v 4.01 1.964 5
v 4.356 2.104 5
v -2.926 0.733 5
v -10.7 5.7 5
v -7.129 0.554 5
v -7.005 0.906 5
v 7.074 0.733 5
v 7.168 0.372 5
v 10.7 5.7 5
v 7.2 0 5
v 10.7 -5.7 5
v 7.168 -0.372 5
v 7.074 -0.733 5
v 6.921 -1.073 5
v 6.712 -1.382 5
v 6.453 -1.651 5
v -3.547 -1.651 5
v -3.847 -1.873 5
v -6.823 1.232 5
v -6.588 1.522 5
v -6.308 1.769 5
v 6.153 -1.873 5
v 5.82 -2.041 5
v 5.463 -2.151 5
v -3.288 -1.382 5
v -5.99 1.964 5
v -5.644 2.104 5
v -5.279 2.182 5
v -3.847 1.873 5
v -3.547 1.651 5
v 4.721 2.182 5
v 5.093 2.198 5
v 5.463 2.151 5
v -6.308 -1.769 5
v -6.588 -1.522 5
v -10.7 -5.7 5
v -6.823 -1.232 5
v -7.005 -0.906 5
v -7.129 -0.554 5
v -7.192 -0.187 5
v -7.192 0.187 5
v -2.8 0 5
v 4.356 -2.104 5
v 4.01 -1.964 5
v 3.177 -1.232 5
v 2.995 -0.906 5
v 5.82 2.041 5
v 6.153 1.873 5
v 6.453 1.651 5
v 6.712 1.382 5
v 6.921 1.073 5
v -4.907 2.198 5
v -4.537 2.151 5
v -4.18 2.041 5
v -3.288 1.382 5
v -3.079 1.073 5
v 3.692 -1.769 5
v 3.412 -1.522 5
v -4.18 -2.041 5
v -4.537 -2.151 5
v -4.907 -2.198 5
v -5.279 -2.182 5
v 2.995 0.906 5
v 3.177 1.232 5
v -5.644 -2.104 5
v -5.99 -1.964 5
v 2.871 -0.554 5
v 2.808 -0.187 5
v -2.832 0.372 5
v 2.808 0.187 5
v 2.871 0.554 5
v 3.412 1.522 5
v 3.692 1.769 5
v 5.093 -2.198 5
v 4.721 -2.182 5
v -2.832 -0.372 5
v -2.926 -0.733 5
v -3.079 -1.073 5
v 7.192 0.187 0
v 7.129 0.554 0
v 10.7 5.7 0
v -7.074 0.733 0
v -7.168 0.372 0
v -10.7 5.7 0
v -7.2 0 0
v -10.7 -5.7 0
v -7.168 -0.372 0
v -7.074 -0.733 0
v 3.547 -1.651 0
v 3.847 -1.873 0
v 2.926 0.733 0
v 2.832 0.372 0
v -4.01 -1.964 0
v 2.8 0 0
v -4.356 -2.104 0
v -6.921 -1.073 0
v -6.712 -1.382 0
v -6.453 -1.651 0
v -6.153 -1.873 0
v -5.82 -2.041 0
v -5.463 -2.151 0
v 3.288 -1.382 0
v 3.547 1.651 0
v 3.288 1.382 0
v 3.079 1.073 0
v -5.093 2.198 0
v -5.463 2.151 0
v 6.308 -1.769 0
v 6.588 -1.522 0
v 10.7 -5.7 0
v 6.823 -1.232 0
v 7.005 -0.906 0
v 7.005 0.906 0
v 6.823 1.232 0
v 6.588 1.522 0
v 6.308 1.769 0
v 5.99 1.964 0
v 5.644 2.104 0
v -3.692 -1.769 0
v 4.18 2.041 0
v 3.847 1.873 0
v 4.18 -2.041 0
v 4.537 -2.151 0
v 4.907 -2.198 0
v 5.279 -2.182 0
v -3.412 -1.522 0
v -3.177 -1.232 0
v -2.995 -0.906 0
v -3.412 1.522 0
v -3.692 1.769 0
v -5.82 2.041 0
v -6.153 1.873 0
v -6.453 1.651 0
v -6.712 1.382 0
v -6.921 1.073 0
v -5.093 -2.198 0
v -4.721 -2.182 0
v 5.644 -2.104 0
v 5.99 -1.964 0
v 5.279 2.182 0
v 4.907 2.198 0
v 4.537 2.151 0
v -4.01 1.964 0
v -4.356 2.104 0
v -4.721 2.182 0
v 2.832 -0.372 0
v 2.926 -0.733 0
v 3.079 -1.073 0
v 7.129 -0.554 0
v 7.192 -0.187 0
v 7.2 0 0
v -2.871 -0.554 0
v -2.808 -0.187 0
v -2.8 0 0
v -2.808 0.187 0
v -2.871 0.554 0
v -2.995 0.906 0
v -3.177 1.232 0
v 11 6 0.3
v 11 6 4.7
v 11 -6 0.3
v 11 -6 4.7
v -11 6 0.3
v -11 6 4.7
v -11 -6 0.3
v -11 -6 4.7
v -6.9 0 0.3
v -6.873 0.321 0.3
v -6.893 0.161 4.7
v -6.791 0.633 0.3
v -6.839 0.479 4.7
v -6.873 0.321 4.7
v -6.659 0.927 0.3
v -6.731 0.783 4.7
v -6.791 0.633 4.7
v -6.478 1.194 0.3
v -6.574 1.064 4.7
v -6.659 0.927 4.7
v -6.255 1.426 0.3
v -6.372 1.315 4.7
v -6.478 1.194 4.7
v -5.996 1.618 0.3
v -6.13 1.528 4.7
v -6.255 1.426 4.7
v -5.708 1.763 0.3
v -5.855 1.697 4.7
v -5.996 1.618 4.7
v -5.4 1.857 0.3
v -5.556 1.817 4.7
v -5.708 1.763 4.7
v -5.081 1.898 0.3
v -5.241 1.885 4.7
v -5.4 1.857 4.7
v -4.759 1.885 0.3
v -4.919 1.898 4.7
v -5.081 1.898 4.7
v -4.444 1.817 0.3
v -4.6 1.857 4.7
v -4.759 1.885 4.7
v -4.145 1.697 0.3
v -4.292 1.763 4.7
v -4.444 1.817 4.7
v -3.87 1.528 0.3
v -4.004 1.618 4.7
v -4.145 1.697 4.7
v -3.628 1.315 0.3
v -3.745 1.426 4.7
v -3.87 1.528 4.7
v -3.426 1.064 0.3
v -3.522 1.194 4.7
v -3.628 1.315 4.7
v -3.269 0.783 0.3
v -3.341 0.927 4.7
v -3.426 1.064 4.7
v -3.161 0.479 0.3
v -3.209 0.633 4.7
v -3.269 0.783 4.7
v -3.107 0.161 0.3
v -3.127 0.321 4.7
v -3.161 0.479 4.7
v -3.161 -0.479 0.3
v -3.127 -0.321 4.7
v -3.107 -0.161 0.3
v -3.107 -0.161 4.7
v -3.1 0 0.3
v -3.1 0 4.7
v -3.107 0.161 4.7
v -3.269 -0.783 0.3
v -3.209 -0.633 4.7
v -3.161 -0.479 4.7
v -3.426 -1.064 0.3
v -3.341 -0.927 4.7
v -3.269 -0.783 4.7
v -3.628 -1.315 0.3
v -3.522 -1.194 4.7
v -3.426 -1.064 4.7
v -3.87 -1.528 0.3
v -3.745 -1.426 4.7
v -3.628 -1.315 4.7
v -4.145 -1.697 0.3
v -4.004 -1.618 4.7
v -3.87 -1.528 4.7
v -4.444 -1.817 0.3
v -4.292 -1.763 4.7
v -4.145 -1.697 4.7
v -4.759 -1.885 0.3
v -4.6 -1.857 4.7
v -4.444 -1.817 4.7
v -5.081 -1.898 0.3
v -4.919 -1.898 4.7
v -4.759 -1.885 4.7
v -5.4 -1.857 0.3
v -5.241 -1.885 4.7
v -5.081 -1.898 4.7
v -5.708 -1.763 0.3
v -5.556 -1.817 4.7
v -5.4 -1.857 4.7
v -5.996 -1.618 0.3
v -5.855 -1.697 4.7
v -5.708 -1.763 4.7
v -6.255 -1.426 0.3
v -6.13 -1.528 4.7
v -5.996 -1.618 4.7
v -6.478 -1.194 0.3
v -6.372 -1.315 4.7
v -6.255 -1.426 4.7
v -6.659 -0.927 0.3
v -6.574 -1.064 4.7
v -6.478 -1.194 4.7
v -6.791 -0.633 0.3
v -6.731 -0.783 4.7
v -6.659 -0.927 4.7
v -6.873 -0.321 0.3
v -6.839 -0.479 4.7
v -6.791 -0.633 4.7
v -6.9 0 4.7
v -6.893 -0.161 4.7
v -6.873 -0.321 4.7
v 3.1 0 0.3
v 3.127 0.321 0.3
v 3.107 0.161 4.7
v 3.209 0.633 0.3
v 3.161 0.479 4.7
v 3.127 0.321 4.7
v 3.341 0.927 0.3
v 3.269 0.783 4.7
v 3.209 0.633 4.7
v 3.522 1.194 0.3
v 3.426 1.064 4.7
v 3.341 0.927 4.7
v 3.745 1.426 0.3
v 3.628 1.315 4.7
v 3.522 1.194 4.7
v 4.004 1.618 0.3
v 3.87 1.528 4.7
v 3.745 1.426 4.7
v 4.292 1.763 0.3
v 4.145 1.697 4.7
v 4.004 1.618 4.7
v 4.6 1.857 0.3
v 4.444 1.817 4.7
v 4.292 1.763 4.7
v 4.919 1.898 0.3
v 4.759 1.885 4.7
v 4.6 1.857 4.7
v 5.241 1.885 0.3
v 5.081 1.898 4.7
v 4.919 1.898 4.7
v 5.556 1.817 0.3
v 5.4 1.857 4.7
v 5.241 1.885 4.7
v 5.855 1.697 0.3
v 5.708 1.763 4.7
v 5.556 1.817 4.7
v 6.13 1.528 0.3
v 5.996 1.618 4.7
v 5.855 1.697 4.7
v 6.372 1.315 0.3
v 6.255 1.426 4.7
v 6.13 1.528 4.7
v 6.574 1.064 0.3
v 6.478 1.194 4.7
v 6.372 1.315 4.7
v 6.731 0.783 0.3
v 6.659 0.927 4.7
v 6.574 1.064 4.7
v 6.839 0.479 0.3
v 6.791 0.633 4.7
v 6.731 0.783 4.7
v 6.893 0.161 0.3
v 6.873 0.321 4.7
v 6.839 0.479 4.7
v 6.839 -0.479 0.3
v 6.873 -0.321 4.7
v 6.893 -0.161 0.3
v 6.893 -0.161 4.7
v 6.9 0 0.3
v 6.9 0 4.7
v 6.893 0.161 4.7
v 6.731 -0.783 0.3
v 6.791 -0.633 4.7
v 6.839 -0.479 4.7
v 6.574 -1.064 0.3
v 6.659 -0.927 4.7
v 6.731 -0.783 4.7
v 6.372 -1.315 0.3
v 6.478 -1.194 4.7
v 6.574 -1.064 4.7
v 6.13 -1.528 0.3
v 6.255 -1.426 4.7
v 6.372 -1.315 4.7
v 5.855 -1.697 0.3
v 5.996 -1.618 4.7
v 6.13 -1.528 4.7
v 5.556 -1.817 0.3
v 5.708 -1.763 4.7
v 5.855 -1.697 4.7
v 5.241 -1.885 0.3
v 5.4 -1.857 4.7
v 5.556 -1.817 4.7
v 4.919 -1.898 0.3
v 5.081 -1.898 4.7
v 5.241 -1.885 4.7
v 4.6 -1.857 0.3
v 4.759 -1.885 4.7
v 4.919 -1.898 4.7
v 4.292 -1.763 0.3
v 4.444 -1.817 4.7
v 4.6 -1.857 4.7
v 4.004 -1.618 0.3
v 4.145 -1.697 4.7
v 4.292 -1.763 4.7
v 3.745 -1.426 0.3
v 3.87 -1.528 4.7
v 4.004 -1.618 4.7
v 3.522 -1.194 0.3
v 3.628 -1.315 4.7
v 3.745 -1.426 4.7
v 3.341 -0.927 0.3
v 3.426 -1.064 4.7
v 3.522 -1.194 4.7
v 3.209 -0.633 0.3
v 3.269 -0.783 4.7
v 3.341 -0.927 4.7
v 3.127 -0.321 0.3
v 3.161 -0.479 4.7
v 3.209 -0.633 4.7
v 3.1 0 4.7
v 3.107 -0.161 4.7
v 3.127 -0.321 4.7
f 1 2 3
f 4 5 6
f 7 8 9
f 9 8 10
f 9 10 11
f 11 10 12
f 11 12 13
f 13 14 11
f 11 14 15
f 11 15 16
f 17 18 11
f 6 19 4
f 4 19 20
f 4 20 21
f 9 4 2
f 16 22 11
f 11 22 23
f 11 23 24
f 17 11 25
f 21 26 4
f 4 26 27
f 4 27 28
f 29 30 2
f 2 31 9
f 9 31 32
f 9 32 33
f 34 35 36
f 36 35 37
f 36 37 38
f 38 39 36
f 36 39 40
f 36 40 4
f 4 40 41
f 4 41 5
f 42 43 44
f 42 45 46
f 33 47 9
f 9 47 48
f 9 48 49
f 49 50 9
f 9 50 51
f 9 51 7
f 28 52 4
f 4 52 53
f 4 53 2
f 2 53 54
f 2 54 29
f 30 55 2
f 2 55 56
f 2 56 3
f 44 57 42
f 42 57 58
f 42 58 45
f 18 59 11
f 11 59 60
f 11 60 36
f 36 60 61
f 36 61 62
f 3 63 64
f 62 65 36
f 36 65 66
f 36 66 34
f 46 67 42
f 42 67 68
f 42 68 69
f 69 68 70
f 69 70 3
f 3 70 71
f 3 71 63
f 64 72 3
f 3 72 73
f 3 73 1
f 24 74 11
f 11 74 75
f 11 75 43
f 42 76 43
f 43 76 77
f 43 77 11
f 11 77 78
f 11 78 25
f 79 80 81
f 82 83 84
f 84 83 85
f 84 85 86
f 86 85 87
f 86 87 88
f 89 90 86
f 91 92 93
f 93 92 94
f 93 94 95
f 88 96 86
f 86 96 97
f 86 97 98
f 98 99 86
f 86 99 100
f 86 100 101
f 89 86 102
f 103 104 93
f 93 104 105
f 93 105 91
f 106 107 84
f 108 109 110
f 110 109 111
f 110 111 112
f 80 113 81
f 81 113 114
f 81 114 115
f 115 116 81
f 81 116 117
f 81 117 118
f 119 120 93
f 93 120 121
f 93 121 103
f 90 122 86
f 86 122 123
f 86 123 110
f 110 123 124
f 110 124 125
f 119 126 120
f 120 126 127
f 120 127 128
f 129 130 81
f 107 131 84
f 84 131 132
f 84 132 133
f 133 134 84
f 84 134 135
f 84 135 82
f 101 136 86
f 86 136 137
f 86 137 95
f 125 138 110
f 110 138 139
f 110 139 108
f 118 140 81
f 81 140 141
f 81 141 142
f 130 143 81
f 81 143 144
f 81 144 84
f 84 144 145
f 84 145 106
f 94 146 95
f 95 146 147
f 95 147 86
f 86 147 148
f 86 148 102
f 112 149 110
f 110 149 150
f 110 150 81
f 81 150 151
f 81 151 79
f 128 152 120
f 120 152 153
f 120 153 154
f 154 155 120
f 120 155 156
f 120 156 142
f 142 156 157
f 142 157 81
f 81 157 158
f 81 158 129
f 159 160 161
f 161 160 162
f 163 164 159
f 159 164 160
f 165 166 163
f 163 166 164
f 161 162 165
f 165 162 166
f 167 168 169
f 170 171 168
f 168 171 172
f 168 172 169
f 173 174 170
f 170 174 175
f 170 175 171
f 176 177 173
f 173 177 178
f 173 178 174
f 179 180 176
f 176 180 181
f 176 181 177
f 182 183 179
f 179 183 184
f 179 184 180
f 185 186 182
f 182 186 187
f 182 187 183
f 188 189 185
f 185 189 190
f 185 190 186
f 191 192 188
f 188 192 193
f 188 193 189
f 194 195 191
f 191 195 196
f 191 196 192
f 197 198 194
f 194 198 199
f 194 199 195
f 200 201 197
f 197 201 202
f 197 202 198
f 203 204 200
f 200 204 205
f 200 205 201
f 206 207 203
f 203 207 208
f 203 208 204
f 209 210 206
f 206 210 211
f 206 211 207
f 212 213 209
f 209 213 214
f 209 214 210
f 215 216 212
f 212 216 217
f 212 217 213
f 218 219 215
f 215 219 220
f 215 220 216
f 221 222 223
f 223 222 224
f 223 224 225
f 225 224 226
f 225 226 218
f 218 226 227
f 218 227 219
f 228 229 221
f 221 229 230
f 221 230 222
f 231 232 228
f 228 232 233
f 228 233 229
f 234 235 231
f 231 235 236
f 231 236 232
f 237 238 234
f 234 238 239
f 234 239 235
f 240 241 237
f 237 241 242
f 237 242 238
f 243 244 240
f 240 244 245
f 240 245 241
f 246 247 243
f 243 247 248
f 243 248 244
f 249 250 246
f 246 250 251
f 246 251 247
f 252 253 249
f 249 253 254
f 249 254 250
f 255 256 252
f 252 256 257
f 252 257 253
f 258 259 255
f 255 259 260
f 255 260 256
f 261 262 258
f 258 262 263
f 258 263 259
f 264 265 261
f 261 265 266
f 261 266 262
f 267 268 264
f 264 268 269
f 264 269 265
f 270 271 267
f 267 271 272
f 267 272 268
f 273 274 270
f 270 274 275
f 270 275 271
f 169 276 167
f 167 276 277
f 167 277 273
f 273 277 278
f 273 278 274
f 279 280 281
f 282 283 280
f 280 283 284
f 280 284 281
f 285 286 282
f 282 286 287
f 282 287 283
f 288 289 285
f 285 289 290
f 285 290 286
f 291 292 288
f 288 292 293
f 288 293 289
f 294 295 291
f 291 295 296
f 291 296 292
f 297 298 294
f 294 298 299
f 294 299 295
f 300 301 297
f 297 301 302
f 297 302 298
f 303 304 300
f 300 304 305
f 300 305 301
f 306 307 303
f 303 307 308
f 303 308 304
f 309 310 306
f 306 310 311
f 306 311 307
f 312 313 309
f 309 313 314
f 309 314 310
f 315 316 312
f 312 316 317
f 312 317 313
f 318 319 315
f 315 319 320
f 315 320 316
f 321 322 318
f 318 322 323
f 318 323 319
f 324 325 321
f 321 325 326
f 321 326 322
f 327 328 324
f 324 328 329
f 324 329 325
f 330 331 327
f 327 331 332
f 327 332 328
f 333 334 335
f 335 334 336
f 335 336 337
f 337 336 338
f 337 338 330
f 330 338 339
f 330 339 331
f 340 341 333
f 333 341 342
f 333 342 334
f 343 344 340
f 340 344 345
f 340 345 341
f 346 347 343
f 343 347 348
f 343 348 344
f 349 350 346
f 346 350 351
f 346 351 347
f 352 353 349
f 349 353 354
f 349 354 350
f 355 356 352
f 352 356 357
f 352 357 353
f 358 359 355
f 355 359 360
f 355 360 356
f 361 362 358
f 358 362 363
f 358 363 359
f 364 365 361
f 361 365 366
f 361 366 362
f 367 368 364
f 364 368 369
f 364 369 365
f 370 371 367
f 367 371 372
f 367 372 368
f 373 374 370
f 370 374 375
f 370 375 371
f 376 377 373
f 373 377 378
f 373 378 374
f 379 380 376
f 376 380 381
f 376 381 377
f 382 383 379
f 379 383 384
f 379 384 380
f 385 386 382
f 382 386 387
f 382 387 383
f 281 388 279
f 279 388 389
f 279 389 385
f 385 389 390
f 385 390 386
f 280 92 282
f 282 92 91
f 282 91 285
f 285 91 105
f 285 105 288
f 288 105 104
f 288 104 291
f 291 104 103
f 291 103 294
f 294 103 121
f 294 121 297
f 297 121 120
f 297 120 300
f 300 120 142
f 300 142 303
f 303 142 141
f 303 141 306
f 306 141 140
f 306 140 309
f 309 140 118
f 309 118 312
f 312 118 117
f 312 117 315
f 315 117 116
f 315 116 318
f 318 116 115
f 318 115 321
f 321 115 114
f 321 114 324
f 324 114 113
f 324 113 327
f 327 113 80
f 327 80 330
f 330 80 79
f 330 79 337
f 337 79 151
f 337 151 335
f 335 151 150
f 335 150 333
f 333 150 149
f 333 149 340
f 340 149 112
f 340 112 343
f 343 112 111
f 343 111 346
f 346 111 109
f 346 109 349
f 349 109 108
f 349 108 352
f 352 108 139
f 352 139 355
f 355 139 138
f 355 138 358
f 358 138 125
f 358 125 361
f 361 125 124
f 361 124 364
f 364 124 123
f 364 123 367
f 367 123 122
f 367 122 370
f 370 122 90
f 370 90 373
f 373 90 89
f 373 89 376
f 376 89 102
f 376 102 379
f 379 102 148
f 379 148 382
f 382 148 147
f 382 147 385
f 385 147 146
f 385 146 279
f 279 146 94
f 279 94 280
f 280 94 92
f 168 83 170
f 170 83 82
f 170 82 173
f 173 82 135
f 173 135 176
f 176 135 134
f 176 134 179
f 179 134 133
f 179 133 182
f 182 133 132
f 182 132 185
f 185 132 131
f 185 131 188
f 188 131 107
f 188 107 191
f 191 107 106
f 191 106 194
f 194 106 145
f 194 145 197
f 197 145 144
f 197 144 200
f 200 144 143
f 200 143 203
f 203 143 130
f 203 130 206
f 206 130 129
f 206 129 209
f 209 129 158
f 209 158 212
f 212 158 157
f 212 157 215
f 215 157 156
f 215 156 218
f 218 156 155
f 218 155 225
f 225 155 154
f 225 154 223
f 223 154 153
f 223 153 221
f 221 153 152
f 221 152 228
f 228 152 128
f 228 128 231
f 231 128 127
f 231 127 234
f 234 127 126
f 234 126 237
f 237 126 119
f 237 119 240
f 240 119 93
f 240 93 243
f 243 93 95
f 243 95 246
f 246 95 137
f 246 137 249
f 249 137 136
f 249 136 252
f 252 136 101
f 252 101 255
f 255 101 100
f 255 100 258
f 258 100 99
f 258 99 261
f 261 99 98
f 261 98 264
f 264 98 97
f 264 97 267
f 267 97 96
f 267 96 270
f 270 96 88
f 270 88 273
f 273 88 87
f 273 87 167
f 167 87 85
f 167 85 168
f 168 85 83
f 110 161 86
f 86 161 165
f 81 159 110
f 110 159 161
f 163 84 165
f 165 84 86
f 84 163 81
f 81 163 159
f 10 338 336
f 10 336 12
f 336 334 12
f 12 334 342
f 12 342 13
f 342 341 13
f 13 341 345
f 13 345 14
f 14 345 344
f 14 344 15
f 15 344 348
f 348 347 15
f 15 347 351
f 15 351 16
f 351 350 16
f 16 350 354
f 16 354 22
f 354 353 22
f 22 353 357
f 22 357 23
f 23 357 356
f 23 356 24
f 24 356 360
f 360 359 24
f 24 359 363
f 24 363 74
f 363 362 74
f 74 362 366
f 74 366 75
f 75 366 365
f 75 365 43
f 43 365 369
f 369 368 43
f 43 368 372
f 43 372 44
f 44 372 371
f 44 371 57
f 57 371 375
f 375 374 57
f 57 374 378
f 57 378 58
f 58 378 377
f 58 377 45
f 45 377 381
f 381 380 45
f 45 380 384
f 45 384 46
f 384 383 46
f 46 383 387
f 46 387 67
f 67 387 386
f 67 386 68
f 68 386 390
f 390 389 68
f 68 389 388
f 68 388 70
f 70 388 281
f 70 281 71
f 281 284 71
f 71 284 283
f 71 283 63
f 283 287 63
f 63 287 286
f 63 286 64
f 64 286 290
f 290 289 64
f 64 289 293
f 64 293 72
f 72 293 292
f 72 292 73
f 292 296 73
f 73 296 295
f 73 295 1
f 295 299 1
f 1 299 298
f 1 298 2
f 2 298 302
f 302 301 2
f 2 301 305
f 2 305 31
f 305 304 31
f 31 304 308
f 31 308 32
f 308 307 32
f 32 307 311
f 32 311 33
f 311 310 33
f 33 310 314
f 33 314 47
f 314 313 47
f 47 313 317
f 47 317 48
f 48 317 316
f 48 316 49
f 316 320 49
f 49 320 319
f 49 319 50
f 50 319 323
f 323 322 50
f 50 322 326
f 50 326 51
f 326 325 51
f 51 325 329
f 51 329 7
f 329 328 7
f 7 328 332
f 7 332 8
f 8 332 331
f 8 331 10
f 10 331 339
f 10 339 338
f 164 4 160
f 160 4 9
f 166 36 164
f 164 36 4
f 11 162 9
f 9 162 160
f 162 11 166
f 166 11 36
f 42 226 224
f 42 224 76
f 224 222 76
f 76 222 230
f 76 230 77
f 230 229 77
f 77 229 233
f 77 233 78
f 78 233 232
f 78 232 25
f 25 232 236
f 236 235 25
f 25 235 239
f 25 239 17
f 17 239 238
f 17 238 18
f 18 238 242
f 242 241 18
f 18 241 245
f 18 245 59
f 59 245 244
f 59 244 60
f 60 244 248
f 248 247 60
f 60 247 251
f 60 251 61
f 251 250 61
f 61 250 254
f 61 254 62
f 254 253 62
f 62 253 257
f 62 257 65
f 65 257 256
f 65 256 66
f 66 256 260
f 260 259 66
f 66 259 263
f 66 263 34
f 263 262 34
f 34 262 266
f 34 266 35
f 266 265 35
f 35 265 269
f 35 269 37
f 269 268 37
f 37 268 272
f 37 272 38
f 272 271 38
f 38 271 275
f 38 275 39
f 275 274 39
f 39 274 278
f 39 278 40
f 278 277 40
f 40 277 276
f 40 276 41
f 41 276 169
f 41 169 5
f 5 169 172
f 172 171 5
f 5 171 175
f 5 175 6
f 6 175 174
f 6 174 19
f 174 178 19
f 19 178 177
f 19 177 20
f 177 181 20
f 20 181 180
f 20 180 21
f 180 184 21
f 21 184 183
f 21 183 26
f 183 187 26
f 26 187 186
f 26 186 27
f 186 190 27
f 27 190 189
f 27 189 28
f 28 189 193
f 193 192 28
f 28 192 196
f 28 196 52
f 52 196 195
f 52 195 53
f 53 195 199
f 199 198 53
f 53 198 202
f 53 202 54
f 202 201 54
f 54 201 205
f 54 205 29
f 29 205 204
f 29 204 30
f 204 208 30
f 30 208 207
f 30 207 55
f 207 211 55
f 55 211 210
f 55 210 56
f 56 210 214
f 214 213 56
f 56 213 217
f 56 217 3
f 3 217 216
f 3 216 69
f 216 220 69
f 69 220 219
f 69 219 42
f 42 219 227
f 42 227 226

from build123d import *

# Parameters (mm, degrees)
SKETCH_1_W      = 22
SKETCH_1_H      = 12
SKETCH_1_R      = 1.9
EXTRUDE_1_DEPTH = 5
CHAMFER_1_SIZE  = 0.3


with BuildPart() as part:
    # 스케치1 → 보스-돌출1 (new body)
    with BuildSketch(Plane.XY):
        Rectangle(SKETCH_1_W, SKETCH_1_H)
        with Locations((-5, 0)):
            Circle(SKETCH_1_R, mode=Mode.SUBTRACT)
        with Locations(Location((5, 0, 0), (0, 0, 180))):
            Circle(SKETCH_1_R, mode=Mode.SUBTRACT)
    extrude(amount=EXTRUDE_1_DEPTH)

    # 모따기1
    chamfer_1_edges = [part.edges().sort_by_distance(p)[0] for p in [
        (-6.9, 0, 0),
        (-6.9, 0, 5),
        (-11, 0, 5),
        (6.9, 0, 0),
        (6.9, 0, 5),
        (0, -6, 5),
        (11, 0, 5),
        (0, -6, 0),
        (-11, 0, 0),
        (0, 6, 0),
        (11, 0, 0),
        (0, 6, 5),
    ]]
    chamfer(chamfer_1_edges, length=CHAMFER_1_SIZE)


solid = part.part
